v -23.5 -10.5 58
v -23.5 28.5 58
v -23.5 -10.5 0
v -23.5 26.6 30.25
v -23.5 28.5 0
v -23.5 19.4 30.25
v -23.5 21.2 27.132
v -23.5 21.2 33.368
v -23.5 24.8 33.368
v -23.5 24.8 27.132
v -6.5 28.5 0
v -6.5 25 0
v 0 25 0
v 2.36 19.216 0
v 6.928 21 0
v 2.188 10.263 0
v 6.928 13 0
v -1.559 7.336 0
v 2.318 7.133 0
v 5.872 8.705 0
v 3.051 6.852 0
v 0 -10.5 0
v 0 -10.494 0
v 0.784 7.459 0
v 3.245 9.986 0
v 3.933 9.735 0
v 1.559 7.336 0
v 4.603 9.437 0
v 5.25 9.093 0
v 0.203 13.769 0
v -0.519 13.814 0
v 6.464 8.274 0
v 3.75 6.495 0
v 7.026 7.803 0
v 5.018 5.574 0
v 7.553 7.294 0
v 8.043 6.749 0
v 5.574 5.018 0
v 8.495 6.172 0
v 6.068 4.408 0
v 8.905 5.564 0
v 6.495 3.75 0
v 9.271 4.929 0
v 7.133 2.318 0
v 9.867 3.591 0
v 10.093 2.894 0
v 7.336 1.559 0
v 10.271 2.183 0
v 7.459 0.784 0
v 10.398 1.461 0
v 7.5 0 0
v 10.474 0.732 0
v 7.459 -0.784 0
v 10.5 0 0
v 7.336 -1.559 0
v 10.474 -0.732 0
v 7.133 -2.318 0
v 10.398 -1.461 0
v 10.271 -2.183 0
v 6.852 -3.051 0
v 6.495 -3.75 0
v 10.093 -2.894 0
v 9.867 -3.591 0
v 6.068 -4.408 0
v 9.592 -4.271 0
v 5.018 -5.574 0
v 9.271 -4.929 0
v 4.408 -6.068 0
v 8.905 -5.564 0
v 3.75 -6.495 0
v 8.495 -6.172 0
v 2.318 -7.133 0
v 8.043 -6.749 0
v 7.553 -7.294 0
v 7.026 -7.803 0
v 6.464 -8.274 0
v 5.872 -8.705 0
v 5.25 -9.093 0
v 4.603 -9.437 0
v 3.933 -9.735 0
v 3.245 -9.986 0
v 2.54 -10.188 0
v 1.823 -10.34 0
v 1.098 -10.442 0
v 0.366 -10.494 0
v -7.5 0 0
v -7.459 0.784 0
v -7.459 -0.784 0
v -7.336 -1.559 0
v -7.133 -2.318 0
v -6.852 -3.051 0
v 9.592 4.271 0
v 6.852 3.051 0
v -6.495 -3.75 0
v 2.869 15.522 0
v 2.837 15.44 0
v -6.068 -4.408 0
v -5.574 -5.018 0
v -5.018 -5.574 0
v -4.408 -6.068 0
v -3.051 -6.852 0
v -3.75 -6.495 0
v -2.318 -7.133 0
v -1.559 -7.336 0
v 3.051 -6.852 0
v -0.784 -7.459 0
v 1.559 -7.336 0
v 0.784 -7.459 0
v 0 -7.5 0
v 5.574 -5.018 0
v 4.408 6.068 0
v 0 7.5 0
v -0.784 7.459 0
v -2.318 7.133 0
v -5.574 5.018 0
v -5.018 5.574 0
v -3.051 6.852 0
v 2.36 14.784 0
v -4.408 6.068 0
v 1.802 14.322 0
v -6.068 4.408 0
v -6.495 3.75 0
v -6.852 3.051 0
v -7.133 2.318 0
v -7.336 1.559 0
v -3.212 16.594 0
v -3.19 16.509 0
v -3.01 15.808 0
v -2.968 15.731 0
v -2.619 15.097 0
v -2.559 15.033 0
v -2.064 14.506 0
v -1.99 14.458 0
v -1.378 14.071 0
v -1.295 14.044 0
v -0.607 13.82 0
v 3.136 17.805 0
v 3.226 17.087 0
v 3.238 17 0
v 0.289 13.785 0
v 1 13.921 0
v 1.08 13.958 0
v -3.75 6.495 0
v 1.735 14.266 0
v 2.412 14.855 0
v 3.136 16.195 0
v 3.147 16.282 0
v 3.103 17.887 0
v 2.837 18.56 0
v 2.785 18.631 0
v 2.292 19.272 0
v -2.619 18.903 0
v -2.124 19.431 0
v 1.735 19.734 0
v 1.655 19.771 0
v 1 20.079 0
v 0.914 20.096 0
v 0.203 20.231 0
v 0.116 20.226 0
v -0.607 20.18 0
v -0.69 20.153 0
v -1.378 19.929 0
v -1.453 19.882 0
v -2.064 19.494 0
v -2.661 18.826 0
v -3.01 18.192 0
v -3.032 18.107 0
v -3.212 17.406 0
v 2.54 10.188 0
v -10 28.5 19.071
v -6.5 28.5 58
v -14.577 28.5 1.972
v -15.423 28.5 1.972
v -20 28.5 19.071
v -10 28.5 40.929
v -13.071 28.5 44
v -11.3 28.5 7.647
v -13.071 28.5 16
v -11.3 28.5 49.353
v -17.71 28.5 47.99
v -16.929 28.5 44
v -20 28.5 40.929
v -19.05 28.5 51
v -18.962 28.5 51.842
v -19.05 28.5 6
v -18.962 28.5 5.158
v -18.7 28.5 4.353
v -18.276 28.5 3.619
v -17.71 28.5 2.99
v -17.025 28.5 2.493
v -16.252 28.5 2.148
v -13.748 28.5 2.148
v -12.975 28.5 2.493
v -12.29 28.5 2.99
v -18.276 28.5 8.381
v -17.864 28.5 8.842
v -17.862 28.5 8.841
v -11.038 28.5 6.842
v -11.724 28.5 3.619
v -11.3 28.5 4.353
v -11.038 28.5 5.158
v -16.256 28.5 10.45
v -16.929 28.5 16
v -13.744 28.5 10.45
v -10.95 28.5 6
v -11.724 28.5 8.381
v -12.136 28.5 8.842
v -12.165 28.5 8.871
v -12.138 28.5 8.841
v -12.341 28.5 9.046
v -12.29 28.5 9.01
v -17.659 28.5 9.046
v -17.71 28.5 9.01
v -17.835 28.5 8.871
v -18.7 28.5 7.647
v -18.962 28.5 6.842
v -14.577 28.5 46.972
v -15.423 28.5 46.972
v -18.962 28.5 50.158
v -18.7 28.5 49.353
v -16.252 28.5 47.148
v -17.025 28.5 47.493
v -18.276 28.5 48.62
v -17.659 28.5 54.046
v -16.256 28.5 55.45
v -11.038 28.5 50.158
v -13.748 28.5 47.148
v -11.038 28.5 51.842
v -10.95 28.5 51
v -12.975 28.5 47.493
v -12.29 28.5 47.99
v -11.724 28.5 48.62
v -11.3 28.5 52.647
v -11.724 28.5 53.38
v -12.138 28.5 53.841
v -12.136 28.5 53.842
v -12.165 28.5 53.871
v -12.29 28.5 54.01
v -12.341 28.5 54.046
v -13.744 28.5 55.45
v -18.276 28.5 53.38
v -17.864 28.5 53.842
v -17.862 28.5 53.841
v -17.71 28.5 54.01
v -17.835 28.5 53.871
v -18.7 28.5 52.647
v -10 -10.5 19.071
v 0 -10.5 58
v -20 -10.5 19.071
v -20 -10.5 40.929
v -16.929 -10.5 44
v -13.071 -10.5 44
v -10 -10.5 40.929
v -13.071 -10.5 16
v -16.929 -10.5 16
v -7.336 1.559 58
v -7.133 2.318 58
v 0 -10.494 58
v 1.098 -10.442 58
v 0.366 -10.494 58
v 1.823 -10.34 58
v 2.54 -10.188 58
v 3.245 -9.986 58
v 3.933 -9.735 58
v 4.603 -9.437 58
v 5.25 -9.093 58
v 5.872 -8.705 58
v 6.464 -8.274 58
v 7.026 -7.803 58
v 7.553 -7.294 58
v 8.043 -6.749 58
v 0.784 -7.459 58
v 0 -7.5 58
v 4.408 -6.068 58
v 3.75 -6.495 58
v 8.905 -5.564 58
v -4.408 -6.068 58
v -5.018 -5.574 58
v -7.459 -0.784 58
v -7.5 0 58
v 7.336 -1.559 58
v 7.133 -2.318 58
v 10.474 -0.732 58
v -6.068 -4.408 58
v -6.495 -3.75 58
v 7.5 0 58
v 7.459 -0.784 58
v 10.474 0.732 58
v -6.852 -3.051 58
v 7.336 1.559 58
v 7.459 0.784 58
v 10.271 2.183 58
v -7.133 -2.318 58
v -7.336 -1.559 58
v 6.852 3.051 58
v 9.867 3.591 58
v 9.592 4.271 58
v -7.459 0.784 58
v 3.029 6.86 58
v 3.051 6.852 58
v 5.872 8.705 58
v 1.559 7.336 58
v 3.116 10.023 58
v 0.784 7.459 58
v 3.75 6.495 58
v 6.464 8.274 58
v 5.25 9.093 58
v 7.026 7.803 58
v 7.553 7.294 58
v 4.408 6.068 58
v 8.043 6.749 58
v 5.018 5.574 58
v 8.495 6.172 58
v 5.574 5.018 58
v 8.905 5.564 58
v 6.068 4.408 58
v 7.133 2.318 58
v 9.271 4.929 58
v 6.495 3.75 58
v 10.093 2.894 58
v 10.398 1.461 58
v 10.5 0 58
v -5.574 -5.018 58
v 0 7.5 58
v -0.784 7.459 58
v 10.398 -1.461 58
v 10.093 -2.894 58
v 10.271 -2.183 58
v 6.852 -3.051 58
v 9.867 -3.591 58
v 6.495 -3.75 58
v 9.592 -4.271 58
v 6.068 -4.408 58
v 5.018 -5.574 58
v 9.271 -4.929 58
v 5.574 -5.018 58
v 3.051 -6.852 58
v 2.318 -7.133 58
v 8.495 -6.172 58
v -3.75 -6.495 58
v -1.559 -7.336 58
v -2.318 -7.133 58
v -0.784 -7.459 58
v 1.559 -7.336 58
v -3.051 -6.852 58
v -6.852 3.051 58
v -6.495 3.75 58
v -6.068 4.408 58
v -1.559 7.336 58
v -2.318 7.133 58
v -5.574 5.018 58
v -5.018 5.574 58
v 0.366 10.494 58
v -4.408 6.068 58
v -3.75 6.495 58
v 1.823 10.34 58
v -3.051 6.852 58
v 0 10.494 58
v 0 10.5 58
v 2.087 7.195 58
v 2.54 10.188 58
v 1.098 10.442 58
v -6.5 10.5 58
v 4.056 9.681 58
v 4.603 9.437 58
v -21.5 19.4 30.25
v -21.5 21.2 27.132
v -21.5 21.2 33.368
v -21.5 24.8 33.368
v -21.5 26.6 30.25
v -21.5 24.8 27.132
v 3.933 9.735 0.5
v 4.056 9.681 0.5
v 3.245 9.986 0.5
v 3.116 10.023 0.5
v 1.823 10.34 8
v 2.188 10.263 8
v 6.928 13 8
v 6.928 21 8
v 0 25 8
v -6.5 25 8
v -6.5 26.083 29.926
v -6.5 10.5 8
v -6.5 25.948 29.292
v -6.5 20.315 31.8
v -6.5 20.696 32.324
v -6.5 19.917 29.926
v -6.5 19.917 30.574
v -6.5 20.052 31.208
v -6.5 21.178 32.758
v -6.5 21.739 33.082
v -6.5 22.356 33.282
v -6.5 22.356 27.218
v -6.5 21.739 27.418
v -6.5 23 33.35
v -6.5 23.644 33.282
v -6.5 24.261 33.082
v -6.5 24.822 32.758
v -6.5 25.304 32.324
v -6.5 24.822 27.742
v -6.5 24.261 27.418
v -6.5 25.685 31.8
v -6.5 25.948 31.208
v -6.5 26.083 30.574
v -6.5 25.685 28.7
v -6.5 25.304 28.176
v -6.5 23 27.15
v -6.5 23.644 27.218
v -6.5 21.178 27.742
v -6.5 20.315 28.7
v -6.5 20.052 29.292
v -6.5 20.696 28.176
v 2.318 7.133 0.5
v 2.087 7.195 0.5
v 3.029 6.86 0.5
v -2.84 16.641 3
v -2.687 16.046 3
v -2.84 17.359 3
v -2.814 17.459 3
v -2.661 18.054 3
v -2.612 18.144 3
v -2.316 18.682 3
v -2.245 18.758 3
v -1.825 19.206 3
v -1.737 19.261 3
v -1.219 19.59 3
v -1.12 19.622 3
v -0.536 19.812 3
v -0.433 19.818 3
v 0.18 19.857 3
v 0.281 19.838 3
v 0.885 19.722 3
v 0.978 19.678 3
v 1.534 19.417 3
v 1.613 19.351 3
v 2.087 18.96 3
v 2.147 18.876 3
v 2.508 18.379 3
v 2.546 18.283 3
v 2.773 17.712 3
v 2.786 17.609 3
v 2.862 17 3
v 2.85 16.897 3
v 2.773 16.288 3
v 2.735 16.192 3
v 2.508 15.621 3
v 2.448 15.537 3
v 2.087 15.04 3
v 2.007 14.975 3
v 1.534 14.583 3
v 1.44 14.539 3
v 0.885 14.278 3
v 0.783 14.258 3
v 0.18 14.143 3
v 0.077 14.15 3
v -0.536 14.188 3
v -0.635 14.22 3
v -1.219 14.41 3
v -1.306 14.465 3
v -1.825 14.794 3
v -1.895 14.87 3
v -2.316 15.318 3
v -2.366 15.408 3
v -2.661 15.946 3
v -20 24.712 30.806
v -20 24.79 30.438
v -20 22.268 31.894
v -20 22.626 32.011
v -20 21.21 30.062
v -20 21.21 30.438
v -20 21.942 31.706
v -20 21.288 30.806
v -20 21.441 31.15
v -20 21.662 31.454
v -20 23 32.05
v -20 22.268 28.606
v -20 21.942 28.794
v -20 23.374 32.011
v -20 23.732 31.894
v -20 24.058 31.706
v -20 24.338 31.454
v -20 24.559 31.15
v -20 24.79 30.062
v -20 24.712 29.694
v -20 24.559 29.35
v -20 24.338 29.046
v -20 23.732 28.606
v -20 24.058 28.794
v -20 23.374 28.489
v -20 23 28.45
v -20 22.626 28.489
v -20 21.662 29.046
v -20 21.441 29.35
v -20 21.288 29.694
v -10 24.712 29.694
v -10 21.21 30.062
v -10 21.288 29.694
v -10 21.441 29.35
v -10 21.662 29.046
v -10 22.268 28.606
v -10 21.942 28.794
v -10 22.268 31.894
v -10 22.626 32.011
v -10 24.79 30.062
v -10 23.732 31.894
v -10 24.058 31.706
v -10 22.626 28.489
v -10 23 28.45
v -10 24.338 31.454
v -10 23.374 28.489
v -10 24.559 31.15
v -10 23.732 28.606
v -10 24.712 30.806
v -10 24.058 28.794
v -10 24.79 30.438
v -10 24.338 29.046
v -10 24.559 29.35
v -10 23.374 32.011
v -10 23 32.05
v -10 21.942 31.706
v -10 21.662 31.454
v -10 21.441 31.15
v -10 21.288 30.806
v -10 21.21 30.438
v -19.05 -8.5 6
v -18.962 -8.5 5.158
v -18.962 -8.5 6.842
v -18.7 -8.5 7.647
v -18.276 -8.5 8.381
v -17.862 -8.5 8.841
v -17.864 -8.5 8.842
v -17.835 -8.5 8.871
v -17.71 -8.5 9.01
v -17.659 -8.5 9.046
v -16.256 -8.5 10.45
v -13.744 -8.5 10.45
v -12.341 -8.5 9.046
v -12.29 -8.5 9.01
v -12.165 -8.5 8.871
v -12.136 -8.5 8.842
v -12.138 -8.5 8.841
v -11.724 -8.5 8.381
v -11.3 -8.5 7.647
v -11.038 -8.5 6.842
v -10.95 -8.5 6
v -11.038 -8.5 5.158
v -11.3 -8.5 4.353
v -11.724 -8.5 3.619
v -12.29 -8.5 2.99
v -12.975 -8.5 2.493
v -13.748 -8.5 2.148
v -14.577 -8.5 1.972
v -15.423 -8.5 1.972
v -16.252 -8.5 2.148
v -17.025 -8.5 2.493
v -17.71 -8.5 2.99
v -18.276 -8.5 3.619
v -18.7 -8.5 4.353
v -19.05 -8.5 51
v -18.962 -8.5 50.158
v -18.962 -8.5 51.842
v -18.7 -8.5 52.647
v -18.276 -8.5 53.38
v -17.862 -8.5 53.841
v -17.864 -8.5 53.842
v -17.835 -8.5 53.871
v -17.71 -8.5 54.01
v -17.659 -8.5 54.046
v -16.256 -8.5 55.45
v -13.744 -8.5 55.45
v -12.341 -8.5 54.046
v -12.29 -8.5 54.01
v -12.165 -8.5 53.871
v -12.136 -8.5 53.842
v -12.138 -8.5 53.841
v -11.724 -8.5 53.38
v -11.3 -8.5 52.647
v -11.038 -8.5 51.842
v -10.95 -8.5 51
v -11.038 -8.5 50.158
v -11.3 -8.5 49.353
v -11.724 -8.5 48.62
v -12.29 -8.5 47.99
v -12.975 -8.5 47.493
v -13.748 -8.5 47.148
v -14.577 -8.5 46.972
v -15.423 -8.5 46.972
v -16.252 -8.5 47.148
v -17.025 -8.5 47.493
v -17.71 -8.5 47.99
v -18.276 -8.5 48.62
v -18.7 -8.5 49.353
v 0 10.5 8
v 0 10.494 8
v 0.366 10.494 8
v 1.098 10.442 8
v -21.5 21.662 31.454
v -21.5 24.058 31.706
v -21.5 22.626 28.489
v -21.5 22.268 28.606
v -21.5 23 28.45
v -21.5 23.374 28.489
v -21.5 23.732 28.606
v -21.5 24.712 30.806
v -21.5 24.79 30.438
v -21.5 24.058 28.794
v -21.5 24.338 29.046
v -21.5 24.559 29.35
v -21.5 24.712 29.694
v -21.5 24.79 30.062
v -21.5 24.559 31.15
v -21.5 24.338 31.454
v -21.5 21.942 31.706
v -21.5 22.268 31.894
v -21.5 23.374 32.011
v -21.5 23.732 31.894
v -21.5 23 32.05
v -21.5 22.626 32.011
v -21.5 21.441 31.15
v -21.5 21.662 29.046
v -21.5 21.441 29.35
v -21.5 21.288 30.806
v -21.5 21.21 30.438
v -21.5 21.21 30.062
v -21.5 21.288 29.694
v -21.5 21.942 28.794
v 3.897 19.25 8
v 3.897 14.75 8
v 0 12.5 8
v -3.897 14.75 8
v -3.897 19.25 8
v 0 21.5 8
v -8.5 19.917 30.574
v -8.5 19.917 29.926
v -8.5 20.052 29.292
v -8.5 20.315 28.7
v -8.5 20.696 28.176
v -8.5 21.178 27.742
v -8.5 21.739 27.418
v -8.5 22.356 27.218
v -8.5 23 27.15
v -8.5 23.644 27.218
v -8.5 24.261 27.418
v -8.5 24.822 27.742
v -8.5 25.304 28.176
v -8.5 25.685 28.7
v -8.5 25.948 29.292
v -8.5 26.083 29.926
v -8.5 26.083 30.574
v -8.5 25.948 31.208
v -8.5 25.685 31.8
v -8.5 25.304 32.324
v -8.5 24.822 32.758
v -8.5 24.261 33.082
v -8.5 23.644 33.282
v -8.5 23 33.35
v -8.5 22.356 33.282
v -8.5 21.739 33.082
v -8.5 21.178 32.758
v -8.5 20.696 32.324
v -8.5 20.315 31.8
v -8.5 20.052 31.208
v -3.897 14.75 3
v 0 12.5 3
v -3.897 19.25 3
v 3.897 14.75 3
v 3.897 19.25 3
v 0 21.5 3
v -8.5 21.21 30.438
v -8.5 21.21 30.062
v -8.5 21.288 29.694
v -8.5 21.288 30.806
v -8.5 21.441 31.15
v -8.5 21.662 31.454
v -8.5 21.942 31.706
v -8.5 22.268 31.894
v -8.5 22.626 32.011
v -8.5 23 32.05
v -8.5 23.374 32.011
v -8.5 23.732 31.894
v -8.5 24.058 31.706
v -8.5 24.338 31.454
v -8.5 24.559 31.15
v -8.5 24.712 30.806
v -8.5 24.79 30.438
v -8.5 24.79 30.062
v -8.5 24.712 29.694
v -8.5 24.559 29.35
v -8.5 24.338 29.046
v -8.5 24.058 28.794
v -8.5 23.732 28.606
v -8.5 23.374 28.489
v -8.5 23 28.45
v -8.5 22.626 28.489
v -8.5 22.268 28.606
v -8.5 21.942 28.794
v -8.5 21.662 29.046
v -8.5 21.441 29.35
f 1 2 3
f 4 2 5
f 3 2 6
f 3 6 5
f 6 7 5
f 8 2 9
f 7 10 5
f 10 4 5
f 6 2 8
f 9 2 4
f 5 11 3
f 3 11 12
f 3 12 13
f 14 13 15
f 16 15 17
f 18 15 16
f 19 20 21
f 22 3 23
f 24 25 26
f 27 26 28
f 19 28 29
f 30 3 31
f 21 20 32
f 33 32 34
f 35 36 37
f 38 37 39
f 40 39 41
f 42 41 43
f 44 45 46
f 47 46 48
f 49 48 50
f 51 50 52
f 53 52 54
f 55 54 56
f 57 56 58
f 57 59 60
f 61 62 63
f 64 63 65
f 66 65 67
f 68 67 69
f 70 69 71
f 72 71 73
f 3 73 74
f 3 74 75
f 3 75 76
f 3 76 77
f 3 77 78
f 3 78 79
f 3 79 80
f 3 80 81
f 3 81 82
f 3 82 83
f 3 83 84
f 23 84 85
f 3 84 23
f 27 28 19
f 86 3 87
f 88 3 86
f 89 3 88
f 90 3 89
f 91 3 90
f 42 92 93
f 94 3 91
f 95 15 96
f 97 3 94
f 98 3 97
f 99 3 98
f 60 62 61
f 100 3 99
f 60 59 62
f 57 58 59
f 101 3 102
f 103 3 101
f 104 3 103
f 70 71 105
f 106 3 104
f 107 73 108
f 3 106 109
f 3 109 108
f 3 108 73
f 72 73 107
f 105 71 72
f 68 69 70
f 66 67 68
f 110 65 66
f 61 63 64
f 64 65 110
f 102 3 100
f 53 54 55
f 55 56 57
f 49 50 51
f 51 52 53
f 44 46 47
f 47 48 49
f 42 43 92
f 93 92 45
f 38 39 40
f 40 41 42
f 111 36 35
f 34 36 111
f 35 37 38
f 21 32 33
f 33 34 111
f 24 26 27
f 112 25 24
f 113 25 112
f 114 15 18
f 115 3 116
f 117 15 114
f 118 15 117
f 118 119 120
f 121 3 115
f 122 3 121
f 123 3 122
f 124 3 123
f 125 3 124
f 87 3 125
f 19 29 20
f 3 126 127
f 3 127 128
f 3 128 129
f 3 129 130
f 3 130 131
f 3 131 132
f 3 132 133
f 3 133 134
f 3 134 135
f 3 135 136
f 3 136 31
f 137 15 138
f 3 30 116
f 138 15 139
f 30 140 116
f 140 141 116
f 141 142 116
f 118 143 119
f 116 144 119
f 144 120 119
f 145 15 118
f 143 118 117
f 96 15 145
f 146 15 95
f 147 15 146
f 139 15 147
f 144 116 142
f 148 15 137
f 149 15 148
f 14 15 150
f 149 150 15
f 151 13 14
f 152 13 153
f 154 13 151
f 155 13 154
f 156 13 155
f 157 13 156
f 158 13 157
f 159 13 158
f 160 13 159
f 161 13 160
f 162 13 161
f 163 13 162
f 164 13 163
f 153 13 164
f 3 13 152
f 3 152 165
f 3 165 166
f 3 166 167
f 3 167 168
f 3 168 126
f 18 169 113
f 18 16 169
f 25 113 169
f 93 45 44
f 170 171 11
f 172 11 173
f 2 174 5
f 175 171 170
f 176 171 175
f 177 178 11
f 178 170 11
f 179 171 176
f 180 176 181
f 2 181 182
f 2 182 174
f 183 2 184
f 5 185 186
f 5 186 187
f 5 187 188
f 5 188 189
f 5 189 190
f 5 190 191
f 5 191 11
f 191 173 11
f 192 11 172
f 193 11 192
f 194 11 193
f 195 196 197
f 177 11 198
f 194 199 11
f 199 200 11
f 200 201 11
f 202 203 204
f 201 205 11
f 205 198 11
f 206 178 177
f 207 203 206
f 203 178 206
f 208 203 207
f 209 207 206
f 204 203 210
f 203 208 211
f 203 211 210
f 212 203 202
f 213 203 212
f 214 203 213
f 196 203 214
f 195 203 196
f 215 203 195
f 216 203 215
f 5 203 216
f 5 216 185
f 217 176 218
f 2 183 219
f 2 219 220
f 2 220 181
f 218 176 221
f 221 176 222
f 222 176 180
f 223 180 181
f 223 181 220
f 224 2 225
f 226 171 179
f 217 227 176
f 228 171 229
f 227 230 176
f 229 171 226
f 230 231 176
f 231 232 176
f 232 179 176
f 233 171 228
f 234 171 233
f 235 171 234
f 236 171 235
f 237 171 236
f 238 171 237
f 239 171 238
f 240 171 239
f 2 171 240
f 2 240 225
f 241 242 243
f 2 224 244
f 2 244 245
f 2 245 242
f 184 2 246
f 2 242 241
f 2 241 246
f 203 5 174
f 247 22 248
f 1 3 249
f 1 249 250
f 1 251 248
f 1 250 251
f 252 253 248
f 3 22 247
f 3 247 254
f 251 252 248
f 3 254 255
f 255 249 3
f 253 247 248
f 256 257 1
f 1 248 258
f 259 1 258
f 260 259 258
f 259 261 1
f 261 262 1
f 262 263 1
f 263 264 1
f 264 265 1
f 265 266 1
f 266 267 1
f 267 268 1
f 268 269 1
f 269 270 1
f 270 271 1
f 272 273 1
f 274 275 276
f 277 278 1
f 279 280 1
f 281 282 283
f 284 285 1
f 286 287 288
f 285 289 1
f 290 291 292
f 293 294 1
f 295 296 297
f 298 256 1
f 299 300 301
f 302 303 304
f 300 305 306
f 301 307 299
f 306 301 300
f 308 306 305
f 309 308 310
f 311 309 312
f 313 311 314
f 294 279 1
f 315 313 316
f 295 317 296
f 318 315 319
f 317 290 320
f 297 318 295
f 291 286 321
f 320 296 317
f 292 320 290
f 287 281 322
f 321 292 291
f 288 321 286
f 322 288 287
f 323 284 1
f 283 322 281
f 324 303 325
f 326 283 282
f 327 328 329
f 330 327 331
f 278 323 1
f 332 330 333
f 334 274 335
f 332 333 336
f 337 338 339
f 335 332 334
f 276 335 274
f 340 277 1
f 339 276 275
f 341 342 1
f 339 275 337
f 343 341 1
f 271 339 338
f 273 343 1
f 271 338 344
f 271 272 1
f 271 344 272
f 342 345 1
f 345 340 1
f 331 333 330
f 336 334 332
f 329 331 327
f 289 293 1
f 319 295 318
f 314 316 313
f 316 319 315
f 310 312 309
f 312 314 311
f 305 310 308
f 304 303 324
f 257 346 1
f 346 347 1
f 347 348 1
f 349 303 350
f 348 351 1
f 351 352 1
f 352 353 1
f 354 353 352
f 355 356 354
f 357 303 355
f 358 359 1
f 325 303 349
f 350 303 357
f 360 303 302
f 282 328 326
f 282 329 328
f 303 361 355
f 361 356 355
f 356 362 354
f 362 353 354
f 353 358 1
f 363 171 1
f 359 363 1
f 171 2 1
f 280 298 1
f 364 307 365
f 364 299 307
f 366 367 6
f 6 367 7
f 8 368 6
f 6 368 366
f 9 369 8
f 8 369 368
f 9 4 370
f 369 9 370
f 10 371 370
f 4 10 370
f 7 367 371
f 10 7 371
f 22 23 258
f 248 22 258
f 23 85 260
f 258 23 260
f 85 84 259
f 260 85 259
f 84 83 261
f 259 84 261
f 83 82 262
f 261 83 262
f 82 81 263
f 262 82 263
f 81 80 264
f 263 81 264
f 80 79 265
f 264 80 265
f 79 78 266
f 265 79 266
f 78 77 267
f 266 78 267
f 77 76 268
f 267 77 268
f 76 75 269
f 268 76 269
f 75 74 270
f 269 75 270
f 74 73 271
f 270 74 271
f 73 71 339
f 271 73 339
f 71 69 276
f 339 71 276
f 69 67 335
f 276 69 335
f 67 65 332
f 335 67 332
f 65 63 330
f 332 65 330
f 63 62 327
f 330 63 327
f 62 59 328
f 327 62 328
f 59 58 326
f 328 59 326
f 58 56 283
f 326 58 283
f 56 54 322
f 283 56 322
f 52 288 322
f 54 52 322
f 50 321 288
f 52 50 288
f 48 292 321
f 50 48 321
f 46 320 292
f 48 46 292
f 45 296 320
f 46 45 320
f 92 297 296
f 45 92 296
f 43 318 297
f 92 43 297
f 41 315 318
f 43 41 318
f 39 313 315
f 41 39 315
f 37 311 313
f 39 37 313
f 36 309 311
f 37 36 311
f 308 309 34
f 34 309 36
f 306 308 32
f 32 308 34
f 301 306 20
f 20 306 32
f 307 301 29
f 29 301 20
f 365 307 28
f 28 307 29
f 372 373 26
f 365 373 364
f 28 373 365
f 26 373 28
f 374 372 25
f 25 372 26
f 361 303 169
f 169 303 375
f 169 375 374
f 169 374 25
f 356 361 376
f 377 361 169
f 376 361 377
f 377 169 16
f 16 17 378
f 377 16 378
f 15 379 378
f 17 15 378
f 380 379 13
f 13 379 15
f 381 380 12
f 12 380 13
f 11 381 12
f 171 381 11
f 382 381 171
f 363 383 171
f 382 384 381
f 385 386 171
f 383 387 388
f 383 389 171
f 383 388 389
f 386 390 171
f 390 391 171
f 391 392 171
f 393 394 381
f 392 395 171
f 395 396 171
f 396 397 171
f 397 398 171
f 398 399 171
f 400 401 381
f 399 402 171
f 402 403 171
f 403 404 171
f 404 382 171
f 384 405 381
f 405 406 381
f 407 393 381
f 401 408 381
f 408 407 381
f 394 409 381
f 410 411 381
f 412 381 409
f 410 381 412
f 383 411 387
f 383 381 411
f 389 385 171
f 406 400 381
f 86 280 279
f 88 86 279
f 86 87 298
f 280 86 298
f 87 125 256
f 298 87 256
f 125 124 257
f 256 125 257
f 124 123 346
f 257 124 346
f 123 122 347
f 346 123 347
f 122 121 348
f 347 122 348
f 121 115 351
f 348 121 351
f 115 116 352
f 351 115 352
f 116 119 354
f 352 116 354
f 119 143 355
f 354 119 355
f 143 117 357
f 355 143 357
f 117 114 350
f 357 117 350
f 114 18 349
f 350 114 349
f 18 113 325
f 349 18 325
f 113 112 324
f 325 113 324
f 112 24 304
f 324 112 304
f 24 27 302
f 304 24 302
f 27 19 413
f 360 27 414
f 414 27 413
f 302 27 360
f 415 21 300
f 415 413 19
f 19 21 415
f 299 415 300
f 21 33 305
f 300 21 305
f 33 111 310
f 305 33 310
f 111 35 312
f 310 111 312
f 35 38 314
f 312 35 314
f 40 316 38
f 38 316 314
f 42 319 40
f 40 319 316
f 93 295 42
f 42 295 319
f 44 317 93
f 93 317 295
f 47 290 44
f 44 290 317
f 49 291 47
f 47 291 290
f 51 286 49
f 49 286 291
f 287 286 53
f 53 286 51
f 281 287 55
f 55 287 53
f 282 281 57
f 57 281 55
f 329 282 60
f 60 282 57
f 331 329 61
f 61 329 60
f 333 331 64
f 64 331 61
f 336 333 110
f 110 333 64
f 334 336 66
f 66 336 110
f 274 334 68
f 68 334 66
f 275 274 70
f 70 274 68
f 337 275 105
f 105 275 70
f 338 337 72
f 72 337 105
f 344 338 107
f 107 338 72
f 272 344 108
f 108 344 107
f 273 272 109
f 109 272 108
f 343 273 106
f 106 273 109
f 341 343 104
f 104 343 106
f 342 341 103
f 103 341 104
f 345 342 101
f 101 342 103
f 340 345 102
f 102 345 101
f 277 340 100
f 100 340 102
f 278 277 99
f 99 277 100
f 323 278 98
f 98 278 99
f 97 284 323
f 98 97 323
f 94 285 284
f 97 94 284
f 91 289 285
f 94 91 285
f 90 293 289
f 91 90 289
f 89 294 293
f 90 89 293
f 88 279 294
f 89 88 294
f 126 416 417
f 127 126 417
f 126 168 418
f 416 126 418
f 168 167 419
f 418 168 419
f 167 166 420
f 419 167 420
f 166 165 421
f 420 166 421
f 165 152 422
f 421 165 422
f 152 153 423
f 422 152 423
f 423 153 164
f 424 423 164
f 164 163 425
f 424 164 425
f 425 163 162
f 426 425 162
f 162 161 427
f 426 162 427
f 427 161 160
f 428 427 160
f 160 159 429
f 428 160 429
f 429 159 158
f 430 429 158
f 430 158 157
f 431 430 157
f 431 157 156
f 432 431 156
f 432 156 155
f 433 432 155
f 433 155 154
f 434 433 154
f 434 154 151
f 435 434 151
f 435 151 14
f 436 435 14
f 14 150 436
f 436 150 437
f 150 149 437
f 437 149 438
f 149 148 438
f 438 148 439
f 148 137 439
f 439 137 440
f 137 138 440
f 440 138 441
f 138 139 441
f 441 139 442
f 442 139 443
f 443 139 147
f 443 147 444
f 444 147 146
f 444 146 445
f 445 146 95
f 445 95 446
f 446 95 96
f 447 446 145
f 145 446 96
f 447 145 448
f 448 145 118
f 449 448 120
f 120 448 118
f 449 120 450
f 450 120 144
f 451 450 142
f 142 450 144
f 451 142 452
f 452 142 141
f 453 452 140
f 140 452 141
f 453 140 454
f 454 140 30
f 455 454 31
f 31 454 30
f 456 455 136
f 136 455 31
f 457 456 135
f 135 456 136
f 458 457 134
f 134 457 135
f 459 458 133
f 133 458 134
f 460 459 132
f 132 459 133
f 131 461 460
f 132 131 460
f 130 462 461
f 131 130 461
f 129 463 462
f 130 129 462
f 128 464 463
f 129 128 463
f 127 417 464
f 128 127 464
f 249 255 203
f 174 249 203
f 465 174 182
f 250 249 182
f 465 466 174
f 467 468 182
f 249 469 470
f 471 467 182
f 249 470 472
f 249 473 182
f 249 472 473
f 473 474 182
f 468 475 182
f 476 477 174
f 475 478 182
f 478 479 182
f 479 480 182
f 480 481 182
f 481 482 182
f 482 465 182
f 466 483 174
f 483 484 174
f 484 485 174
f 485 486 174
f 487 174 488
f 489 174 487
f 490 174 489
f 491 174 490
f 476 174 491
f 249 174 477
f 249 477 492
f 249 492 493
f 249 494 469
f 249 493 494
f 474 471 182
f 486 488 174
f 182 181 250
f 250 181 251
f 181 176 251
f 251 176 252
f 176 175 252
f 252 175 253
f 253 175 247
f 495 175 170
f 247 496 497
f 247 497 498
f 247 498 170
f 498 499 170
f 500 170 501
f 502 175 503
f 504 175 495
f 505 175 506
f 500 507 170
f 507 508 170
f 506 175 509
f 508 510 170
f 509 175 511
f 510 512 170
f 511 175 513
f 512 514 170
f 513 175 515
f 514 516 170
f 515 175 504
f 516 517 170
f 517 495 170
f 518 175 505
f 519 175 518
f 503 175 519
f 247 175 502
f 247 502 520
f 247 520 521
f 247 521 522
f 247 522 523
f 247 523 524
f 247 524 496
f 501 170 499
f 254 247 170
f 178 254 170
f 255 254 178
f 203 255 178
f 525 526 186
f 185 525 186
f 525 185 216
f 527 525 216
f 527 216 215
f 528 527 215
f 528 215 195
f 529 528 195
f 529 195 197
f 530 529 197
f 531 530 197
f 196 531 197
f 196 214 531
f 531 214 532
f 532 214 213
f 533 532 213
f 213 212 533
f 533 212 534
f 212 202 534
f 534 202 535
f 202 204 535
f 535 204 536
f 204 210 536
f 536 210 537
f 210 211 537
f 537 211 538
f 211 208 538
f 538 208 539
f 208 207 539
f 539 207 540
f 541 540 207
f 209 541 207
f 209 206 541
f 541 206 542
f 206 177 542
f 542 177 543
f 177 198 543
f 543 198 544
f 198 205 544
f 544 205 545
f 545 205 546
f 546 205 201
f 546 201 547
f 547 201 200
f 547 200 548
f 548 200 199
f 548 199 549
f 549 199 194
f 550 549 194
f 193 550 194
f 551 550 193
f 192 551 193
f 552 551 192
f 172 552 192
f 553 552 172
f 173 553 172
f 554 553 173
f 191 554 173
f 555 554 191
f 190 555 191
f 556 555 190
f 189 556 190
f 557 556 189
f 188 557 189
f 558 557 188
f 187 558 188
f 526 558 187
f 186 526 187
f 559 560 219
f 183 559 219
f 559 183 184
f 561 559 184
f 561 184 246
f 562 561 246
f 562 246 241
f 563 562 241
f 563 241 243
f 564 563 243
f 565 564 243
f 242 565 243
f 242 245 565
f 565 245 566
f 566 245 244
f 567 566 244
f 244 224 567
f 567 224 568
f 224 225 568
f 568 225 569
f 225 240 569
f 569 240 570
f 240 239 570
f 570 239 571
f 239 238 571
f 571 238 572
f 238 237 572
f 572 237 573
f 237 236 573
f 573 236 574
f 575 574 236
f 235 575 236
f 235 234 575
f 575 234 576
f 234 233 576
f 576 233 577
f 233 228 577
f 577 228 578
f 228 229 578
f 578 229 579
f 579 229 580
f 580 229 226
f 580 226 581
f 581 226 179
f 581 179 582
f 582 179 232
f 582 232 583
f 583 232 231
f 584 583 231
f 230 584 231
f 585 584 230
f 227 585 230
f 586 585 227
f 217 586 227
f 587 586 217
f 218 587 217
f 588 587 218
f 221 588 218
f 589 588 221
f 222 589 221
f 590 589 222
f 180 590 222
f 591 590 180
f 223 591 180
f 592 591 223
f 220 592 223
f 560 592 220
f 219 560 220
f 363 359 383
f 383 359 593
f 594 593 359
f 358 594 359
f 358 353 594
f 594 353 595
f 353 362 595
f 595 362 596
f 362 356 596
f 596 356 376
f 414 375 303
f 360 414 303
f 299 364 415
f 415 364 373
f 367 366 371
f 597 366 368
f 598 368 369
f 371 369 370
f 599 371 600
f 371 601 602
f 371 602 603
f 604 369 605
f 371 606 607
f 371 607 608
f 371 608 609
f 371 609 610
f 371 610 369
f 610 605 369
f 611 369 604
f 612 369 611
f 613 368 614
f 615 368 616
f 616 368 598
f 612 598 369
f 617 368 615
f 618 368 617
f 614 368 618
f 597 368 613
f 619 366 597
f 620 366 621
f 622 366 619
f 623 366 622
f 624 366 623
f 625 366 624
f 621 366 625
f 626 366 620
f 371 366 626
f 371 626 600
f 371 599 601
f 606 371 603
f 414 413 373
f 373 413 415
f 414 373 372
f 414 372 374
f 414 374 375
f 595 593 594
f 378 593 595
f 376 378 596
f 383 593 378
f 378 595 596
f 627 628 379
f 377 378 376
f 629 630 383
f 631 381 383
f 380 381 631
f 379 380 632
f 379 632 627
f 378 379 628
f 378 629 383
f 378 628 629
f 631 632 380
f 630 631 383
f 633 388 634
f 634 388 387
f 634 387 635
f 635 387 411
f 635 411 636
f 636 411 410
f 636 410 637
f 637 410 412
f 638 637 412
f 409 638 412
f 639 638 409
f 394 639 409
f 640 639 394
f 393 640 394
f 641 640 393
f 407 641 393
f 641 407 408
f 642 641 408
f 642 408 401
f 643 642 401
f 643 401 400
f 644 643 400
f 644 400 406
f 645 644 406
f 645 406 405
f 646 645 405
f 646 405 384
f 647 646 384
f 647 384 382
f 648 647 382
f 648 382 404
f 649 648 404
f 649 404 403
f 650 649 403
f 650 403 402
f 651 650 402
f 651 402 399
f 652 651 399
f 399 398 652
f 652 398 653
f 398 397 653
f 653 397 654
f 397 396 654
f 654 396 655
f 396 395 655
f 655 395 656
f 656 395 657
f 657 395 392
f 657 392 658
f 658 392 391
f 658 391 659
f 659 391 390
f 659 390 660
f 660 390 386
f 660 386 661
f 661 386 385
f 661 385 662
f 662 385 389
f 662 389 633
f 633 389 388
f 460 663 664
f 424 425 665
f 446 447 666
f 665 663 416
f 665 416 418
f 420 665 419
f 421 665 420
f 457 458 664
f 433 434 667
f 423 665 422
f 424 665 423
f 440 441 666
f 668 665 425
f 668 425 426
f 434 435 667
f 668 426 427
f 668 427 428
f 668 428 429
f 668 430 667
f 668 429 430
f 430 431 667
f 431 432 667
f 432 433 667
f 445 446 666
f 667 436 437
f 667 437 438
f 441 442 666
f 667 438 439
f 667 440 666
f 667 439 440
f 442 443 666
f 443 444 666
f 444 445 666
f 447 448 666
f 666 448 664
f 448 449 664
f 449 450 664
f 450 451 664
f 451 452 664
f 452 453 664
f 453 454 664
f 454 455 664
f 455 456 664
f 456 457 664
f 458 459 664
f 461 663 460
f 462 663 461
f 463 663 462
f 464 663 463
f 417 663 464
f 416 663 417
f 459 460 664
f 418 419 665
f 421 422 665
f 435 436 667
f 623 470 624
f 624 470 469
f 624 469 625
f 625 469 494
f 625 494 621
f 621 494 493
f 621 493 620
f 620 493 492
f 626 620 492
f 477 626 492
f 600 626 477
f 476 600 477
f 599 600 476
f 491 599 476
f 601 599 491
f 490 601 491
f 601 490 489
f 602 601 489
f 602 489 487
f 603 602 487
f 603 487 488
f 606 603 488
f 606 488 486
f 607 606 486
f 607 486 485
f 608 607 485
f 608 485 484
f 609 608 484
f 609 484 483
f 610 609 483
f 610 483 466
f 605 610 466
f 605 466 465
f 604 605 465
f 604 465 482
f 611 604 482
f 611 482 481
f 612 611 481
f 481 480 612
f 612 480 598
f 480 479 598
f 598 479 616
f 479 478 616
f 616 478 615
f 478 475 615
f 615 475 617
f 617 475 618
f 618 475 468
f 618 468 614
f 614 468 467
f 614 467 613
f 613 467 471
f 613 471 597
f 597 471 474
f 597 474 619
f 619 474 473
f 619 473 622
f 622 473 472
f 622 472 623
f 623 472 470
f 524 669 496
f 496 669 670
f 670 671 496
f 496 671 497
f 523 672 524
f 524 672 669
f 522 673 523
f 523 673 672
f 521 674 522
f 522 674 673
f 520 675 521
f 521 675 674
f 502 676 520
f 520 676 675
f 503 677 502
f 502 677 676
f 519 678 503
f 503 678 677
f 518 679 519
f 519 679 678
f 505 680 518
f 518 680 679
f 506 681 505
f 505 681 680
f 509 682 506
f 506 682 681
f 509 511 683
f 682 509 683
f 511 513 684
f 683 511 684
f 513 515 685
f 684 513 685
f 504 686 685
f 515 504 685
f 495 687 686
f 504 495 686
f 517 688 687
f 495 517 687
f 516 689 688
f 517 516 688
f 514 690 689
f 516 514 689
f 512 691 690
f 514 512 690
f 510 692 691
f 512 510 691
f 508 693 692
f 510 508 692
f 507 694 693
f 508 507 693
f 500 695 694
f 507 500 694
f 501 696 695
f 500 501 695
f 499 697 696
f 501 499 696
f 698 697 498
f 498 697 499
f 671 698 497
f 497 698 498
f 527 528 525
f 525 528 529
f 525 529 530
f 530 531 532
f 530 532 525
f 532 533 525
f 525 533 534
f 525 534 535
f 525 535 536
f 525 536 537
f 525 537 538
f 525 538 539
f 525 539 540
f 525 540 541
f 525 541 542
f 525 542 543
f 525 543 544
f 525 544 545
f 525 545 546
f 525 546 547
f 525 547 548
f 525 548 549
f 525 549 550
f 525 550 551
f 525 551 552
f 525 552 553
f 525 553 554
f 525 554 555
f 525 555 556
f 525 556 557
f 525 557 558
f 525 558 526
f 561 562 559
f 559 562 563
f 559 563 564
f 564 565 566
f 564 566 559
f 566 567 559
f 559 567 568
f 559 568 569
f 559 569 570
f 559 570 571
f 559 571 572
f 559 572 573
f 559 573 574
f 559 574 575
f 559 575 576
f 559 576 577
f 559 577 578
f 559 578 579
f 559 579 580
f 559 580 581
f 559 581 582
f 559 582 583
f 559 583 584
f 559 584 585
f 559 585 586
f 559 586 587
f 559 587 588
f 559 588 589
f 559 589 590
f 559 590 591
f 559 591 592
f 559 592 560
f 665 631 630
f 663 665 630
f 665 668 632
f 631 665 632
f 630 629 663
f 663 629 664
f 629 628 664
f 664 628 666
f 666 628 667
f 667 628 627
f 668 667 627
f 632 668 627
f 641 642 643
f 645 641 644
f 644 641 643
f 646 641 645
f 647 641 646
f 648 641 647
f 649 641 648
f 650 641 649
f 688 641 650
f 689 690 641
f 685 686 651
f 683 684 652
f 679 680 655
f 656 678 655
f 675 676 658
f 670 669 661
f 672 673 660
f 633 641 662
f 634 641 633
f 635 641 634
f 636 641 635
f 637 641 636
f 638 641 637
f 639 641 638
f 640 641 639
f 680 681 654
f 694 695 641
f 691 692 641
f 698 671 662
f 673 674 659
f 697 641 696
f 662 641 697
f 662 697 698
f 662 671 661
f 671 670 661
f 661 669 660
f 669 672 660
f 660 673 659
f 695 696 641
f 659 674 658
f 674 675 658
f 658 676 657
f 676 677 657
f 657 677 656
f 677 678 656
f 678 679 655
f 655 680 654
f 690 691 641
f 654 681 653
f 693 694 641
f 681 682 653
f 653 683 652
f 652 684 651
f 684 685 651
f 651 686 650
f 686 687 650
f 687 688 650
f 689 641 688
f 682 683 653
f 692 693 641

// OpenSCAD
// file: bearing.scad
// PRUSA iteration3
// Bearing holders
// GNU GPL v3
// Josef Průša <iam@josefprusa.cz> and contributors
// http://www.reprap.org/wiki/Prusa_Mendel
// http://prusamendel.org

bearing_diameter = 15;

module horizontal_bearing_base(bearings=1){
 translate(v=[0,0,6]) cube(size = [24,8+bearings*25,12], center = true);	
}
module horizontal_bearing_holes(bearings=1){
 cutter_lenght = 10+bearings*25;
 one_holder_lenght = 8+25;
 holder_lenght = 8+bearings*25;
 
 // Main bearing cut
 difference(){
  translate(v=[0,0,12]) rotate(a=[90,0,0]) translate(v=[0,0,-cutter_lenght/2]) cylinder(h = cutter_lenght, r=bearing_diameter/2, $fn=50);
  // Bearing retainers
  translate(v=[0,1-holder_lenght/2,3]) cube(size = [24,6,8], center = true);
  translate(v=[0,-1+holder_lenght/2,3]) cube(size = [24,6,8], center = true);
 }
 
 // Ziptie cutouts
 ziptie_cut_ofset = 0;
 for ( i = [0 : bearings-1] ){
  // For easier positioning I move them by half of one 
  // bearing holder then add each bearign lenght and then center again
  translate(v=[0,-holder_lenght/2,0]) translate(v=[0,one_holder_lenght/2+i*25,0]) difference(){
   union(){
    translate(v=[0,2-6,12]) rotate(a=[90,0,0]) translate(v=[0,0,0]) cylinder(h = 4, r=12.5, $fn=50);
    translate(v=[0,2+6,12]) rotate(a=[90,0,0]) translate(v=[0,0,0]) cylinder(h = 4, r=12.5, $fn=50);
   }
   translate(v=[0,10,12]) rotate(a=[90,0,0]) translate(v=[0,0,0]) cylinder(h = 24, r=10, $fn=50);
  }
 }
 
}

module horizontal_bearing_test(){
 difference(){
  horizontal_bearing_base(1);
  horizontal_bearing_holes(1);
 }
 translate(v=[30,0,0]) difference(){
  horizontal_bearing_base(2);
  horizontal_bearing_holes(2);
 }
 translate(v=[60,0,0]) difference(){
  horizontal_bearing_base(3);
  horizontal_bearing_holes(3);
 }
}



thinwall = 3;
bearing_size = bearing_diameter + 2 * thinwall;

module vertical_bearing_base(){
 translate(v=[-2-bearing_size/4,0,29]) cube(size = [4+bearing_size/2,bearing_size,58], center = true);
 cylinder(h = 58, r=bearing_size/2, $fn = 90);
}

module vertical_bearing_holes(){
  translate(v=[0,0,-1]) cylinder(h = 62, r=bearing_diameter/2, $fn = 60);
  rotate(a=[0,0,-70]) translate(v=[8,0,31.5]) cube(size = [5,1,62], center = true);
}

difference(){
vertical_bearing_base();
vertical_bearing_holes();
}
// file: x-end.scad
// PRUSA iteration3
// X end prototype
// GNU GPL v3
// Josef Průša <iam@josefprusa.cz> and contributors
// http://www.reprap.org/wiki/Prusa_Mendel
// http://prusamendel.org

use <bearing.scad>
rod_distance = 45;

module x_end_base(){
// Main block
height = 58;
translate(v=[-15,-9,height/2]) cube(size = [17,39,height], center = true);
// Bearing holder
 vertical_bearing_base();	
//Nut trap
 // Cube
 translate(v=[-2-2,-17,4]) cube(size = [8,16,8], center = true);
 // Hexagon
 translate(v=[0,-17,0]) rotate([0,0,30]) cylinder(h = 8, r=8, $fn = 6);
}

module x_end_holes(){
 vertical_bearing_holes();
// Belt hole
translate(v=[-1,0,0])
difference(){
	translate(v=[-5.5-10+1.5,-10,30]) cube(size = [10,46,28], center = true);

	// Nice edges
	translate(v=[-5.5-10+1.5,-10,30+23]) rotate([0,45,0]) cube(size = [10,46,28], center = true);
	translate(v=[-5.5-10+1.5,-10,30+23]) rotate([0,-45,0]) cube(size = [10,46,28], center = true);
	translate(v=[-5.5-10+1.5,-10,30-23]) rotate([0,45,0]) cube(size = [10,46,28], center = true);
	translate(v=[-5.5-10+1.5,-10,30-23]) rotate([0,-45,0]) cube(size = [10,46,28], center = true);

}

// Bottom pushfit rod
translate(v=[-15,-41.5,6]) rotate(a=[-90,0,0]) pushfit_rod(8.1,50);
// Top pushfit rod
translate(v=[-15,-41.5,rod_distance+6]) rotate(a=[-90,0,0]) pushfit_rod(8.1,50);
// Nut trap
 translate(v=[0,-17,-0.5]) cylinder(h = 4, r1=3.3, r2=2.8, $fn=25);
 translate(v=[0,-17,3]) rotate([0,0,30]) cylinder(h = 10, r=4.5, $fn = 6);
}


// Final prototype
module x_end_plain(){
 difference(){
  x_end_base();
  x_end_holes();
 }
}

x_end_plain();


module pushfit_rod(diameter,length){
 cylinder(h = length, r=diameter/2, $fn=30);
 difference(){
 	translate(v=[0,-diameter/2.85,length/2]) rotate([0,0,45]) cube(size = [diameter/2,diameter/2,length], center = true);
 	translate(v=[0,-diameter/4-diameter/2-0.4,length/2]) rotate([0,0,0]) cube(size = [diameter,diameter/2,length], center = true);
 }
 //translate(v=[0,-diameter/2-2,length/2]) cube(size = [diameter,1,length], center = true);
}
// main file
// PRUSA iteration3
// X end idler
// GNU GPL v3
// Josef Průša <iam@josefprusa.cz> and contributors
// http://www.reprap.org/wiki/Prusa_Mendel
// http://prusamendel.org

use <x-end.scad>

module x_end_idler_base(){
 x_end_base();
}

module x_end_idler_holes(){
 x_end_holes();
 translate(v=[0,-23,30.25]) rotate(a=[0,-90,0]) cylinder(h = 80, r=1.8, $fn=30);
 translate(v=[1.5,-23,30.25]) rotate(a=[0,-90,0]) cylinder(h = 10, r=3.1, $fn=30);
 translate(v=[-21.5,-23,30.25]) rotate(a=[0,-90,0]) rotate(a=[0,0,30]) cylinder(h = 80, r=3.6, $fn=6);
}
 
// Final part
module x_end_idler(){
 mirror([0,1,0]) difference(){
  x_end_idler_base();
  x_end_idler_holes();
 }
}

x_end_idler();
